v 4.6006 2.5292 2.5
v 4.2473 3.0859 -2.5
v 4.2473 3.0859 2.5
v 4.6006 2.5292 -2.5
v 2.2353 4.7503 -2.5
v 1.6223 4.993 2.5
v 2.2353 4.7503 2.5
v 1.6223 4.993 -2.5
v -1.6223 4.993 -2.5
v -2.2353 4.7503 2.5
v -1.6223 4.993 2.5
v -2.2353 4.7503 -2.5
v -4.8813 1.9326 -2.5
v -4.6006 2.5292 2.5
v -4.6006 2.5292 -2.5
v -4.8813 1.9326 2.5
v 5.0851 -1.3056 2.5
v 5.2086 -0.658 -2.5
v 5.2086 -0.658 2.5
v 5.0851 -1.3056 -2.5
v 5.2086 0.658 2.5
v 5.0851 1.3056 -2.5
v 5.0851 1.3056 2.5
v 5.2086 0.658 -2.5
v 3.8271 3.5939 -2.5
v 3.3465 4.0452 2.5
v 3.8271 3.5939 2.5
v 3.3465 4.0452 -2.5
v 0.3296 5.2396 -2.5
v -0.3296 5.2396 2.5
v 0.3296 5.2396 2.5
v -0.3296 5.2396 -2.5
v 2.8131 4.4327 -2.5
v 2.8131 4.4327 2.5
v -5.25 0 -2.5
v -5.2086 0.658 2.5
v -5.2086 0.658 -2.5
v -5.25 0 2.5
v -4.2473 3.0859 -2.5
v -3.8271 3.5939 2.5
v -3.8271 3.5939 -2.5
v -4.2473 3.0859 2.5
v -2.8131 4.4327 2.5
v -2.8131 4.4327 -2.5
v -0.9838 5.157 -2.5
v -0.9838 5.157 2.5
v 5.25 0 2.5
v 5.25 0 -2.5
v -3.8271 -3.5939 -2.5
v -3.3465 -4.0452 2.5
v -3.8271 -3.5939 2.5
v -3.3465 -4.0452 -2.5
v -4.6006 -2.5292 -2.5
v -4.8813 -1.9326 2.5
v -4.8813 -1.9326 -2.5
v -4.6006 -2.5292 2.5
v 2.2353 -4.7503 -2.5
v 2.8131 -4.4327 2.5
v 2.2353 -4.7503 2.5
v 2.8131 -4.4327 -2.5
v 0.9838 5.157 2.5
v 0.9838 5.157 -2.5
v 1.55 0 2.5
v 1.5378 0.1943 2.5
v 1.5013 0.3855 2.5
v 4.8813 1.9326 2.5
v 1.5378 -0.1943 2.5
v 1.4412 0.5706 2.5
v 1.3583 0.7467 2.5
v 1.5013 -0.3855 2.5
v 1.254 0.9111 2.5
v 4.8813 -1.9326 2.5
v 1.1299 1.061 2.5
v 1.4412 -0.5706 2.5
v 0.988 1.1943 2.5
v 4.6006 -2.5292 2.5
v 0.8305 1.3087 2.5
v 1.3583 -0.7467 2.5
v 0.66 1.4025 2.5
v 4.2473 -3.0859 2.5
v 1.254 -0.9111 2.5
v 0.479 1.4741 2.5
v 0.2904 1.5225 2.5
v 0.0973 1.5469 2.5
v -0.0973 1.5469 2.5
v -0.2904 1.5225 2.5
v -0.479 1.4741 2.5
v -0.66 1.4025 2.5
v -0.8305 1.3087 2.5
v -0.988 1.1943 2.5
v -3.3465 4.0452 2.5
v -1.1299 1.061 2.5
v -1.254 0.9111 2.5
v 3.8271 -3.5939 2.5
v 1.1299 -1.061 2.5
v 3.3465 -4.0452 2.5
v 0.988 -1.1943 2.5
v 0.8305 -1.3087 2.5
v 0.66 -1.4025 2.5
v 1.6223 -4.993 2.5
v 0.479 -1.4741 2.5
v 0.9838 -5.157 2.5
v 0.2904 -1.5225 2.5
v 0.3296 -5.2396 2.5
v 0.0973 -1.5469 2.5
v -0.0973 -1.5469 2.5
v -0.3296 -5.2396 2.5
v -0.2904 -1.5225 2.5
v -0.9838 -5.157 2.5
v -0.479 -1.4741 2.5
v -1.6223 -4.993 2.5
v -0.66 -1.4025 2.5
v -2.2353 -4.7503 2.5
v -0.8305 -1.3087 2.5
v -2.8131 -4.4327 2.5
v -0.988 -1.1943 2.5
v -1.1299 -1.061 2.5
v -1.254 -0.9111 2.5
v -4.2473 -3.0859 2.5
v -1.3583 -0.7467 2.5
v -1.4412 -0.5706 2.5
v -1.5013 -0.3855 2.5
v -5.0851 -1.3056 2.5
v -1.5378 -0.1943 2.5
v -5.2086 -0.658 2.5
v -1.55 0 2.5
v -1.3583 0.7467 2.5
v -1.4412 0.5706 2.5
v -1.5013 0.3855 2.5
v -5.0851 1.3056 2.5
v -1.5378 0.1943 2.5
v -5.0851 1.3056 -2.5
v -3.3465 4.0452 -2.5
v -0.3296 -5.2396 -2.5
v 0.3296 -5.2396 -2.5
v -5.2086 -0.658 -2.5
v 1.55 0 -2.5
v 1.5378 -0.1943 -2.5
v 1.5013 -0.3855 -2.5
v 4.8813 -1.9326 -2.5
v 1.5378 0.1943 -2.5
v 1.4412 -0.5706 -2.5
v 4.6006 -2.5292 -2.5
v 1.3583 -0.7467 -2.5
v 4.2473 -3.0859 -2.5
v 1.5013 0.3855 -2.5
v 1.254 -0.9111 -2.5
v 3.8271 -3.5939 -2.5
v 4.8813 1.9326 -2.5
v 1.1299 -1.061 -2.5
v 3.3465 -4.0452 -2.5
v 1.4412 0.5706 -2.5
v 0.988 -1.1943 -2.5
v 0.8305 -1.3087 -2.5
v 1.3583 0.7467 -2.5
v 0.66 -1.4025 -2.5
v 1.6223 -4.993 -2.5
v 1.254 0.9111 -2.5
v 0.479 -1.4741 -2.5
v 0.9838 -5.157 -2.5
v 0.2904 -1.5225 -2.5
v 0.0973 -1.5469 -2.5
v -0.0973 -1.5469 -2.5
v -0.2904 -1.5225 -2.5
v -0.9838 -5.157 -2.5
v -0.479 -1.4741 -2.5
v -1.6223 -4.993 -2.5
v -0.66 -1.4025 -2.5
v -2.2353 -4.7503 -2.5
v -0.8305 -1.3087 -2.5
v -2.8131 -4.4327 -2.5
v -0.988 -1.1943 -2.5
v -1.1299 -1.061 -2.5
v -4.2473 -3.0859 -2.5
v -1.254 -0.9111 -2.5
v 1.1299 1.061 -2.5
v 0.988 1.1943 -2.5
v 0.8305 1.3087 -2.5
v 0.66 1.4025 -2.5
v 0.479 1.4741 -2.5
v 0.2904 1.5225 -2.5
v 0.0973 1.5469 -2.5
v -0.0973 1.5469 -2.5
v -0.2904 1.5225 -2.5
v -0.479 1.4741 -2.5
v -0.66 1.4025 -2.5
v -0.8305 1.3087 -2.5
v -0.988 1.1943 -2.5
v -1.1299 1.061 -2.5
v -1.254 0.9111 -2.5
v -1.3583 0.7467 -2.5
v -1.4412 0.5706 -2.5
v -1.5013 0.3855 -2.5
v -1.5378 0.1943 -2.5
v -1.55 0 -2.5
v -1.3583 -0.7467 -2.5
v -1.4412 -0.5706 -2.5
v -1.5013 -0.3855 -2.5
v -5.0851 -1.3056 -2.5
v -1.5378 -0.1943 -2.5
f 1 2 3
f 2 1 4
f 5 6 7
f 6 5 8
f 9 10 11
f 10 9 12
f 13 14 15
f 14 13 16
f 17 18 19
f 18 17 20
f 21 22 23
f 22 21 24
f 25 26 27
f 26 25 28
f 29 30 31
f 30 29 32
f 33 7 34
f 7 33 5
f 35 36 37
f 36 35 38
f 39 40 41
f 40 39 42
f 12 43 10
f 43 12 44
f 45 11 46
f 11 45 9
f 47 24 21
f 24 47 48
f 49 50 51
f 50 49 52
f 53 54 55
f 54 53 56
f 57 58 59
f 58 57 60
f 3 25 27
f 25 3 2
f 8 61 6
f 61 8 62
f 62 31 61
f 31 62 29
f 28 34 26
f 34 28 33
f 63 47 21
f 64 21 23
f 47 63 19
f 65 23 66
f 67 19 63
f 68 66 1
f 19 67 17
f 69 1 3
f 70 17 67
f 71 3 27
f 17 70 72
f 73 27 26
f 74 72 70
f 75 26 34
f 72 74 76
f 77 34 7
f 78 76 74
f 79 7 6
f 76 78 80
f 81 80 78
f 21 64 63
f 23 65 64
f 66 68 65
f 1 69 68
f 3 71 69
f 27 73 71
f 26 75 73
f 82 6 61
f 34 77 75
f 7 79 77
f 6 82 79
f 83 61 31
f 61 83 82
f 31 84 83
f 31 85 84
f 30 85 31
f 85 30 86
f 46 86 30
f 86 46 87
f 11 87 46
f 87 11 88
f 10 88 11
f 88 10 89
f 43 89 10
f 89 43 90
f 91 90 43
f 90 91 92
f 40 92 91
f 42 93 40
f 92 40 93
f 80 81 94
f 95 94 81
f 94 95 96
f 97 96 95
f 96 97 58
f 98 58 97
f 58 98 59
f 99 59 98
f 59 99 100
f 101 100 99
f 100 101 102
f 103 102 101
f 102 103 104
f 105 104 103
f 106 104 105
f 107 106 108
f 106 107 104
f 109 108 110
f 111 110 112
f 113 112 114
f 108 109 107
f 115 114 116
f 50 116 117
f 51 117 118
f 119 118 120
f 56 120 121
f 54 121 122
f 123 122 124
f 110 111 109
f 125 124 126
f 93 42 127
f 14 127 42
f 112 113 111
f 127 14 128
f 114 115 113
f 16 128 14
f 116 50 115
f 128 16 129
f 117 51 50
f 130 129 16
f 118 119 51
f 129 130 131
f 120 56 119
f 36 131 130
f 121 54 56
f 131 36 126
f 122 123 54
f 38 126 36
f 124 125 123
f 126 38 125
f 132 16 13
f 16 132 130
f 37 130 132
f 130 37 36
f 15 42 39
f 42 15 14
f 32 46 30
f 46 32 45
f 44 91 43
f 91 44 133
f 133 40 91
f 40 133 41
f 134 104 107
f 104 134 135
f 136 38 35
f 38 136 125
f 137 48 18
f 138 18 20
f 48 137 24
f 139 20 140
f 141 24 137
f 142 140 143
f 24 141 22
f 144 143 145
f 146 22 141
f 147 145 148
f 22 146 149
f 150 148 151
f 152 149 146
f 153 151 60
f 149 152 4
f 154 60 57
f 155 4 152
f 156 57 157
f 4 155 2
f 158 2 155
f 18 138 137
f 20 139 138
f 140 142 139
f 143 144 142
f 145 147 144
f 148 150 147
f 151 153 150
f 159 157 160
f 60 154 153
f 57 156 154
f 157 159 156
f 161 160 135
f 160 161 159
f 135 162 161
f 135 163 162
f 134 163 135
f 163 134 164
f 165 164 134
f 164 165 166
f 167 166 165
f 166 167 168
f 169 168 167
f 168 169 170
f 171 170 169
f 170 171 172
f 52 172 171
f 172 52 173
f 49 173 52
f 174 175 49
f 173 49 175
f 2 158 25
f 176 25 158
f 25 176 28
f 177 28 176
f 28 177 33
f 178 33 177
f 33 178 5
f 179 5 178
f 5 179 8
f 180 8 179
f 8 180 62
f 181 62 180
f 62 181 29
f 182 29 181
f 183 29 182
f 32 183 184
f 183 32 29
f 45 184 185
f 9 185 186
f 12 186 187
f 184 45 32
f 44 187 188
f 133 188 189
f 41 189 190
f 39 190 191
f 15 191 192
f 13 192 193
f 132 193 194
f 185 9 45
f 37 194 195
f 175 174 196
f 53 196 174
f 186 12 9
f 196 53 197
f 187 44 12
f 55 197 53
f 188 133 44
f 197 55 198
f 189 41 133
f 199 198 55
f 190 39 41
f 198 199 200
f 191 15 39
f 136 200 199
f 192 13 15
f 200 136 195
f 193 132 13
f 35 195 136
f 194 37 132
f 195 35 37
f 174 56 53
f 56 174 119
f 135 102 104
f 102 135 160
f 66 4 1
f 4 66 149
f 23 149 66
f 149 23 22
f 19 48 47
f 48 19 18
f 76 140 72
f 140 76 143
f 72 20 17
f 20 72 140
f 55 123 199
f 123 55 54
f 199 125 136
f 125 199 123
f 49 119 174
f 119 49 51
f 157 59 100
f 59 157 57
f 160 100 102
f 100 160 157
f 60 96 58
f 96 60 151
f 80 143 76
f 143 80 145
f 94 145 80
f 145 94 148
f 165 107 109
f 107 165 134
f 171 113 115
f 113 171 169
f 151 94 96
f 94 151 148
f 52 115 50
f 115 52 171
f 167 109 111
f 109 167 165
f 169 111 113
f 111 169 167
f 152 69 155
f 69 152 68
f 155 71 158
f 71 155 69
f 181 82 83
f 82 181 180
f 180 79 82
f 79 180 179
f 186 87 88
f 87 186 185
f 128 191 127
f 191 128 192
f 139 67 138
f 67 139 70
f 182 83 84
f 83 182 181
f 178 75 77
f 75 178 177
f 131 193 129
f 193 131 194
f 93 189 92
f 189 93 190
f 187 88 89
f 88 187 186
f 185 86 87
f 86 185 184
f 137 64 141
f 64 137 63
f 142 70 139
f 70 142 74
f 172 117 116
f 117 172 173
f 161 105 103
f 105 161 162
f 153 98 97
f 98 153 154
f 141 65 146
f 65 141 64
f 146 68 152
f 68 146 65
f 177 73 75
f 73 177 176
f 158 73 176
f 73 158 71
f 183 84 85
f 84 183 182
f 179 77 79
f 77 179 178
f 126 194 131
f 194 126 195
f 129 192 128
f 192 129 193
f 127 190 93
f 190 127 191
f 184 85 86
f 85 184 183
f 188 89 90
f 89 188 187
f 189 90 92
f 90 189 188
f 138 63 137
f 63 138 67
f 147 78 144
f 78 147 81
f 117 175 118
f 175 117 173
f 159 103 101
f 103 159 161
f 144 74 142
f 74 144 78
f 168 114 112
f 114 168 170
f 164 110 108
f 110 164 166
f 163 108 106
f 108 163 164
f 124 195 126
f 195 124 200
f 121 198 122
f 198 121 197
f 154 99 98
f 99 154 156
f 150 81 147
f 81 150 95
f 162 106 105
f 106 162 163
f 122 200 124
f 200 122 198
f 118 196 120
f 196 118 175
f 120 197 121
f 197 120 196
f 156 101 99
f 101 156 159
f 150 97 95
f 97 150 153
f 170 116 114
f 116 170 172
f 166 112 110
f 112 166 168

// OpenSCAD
$fn = 50;


difference() {
	union() {
		translate(v = [0, 0, -2.5000000000]) {
			cylinder(h = 5, r = 5.2500000000);
		}
	}
	union() {
		translate(v = [0, 0, -100.0000000000]) {
			cylinder(h = 200, r = 1.5500000000);
		}
	}
}
